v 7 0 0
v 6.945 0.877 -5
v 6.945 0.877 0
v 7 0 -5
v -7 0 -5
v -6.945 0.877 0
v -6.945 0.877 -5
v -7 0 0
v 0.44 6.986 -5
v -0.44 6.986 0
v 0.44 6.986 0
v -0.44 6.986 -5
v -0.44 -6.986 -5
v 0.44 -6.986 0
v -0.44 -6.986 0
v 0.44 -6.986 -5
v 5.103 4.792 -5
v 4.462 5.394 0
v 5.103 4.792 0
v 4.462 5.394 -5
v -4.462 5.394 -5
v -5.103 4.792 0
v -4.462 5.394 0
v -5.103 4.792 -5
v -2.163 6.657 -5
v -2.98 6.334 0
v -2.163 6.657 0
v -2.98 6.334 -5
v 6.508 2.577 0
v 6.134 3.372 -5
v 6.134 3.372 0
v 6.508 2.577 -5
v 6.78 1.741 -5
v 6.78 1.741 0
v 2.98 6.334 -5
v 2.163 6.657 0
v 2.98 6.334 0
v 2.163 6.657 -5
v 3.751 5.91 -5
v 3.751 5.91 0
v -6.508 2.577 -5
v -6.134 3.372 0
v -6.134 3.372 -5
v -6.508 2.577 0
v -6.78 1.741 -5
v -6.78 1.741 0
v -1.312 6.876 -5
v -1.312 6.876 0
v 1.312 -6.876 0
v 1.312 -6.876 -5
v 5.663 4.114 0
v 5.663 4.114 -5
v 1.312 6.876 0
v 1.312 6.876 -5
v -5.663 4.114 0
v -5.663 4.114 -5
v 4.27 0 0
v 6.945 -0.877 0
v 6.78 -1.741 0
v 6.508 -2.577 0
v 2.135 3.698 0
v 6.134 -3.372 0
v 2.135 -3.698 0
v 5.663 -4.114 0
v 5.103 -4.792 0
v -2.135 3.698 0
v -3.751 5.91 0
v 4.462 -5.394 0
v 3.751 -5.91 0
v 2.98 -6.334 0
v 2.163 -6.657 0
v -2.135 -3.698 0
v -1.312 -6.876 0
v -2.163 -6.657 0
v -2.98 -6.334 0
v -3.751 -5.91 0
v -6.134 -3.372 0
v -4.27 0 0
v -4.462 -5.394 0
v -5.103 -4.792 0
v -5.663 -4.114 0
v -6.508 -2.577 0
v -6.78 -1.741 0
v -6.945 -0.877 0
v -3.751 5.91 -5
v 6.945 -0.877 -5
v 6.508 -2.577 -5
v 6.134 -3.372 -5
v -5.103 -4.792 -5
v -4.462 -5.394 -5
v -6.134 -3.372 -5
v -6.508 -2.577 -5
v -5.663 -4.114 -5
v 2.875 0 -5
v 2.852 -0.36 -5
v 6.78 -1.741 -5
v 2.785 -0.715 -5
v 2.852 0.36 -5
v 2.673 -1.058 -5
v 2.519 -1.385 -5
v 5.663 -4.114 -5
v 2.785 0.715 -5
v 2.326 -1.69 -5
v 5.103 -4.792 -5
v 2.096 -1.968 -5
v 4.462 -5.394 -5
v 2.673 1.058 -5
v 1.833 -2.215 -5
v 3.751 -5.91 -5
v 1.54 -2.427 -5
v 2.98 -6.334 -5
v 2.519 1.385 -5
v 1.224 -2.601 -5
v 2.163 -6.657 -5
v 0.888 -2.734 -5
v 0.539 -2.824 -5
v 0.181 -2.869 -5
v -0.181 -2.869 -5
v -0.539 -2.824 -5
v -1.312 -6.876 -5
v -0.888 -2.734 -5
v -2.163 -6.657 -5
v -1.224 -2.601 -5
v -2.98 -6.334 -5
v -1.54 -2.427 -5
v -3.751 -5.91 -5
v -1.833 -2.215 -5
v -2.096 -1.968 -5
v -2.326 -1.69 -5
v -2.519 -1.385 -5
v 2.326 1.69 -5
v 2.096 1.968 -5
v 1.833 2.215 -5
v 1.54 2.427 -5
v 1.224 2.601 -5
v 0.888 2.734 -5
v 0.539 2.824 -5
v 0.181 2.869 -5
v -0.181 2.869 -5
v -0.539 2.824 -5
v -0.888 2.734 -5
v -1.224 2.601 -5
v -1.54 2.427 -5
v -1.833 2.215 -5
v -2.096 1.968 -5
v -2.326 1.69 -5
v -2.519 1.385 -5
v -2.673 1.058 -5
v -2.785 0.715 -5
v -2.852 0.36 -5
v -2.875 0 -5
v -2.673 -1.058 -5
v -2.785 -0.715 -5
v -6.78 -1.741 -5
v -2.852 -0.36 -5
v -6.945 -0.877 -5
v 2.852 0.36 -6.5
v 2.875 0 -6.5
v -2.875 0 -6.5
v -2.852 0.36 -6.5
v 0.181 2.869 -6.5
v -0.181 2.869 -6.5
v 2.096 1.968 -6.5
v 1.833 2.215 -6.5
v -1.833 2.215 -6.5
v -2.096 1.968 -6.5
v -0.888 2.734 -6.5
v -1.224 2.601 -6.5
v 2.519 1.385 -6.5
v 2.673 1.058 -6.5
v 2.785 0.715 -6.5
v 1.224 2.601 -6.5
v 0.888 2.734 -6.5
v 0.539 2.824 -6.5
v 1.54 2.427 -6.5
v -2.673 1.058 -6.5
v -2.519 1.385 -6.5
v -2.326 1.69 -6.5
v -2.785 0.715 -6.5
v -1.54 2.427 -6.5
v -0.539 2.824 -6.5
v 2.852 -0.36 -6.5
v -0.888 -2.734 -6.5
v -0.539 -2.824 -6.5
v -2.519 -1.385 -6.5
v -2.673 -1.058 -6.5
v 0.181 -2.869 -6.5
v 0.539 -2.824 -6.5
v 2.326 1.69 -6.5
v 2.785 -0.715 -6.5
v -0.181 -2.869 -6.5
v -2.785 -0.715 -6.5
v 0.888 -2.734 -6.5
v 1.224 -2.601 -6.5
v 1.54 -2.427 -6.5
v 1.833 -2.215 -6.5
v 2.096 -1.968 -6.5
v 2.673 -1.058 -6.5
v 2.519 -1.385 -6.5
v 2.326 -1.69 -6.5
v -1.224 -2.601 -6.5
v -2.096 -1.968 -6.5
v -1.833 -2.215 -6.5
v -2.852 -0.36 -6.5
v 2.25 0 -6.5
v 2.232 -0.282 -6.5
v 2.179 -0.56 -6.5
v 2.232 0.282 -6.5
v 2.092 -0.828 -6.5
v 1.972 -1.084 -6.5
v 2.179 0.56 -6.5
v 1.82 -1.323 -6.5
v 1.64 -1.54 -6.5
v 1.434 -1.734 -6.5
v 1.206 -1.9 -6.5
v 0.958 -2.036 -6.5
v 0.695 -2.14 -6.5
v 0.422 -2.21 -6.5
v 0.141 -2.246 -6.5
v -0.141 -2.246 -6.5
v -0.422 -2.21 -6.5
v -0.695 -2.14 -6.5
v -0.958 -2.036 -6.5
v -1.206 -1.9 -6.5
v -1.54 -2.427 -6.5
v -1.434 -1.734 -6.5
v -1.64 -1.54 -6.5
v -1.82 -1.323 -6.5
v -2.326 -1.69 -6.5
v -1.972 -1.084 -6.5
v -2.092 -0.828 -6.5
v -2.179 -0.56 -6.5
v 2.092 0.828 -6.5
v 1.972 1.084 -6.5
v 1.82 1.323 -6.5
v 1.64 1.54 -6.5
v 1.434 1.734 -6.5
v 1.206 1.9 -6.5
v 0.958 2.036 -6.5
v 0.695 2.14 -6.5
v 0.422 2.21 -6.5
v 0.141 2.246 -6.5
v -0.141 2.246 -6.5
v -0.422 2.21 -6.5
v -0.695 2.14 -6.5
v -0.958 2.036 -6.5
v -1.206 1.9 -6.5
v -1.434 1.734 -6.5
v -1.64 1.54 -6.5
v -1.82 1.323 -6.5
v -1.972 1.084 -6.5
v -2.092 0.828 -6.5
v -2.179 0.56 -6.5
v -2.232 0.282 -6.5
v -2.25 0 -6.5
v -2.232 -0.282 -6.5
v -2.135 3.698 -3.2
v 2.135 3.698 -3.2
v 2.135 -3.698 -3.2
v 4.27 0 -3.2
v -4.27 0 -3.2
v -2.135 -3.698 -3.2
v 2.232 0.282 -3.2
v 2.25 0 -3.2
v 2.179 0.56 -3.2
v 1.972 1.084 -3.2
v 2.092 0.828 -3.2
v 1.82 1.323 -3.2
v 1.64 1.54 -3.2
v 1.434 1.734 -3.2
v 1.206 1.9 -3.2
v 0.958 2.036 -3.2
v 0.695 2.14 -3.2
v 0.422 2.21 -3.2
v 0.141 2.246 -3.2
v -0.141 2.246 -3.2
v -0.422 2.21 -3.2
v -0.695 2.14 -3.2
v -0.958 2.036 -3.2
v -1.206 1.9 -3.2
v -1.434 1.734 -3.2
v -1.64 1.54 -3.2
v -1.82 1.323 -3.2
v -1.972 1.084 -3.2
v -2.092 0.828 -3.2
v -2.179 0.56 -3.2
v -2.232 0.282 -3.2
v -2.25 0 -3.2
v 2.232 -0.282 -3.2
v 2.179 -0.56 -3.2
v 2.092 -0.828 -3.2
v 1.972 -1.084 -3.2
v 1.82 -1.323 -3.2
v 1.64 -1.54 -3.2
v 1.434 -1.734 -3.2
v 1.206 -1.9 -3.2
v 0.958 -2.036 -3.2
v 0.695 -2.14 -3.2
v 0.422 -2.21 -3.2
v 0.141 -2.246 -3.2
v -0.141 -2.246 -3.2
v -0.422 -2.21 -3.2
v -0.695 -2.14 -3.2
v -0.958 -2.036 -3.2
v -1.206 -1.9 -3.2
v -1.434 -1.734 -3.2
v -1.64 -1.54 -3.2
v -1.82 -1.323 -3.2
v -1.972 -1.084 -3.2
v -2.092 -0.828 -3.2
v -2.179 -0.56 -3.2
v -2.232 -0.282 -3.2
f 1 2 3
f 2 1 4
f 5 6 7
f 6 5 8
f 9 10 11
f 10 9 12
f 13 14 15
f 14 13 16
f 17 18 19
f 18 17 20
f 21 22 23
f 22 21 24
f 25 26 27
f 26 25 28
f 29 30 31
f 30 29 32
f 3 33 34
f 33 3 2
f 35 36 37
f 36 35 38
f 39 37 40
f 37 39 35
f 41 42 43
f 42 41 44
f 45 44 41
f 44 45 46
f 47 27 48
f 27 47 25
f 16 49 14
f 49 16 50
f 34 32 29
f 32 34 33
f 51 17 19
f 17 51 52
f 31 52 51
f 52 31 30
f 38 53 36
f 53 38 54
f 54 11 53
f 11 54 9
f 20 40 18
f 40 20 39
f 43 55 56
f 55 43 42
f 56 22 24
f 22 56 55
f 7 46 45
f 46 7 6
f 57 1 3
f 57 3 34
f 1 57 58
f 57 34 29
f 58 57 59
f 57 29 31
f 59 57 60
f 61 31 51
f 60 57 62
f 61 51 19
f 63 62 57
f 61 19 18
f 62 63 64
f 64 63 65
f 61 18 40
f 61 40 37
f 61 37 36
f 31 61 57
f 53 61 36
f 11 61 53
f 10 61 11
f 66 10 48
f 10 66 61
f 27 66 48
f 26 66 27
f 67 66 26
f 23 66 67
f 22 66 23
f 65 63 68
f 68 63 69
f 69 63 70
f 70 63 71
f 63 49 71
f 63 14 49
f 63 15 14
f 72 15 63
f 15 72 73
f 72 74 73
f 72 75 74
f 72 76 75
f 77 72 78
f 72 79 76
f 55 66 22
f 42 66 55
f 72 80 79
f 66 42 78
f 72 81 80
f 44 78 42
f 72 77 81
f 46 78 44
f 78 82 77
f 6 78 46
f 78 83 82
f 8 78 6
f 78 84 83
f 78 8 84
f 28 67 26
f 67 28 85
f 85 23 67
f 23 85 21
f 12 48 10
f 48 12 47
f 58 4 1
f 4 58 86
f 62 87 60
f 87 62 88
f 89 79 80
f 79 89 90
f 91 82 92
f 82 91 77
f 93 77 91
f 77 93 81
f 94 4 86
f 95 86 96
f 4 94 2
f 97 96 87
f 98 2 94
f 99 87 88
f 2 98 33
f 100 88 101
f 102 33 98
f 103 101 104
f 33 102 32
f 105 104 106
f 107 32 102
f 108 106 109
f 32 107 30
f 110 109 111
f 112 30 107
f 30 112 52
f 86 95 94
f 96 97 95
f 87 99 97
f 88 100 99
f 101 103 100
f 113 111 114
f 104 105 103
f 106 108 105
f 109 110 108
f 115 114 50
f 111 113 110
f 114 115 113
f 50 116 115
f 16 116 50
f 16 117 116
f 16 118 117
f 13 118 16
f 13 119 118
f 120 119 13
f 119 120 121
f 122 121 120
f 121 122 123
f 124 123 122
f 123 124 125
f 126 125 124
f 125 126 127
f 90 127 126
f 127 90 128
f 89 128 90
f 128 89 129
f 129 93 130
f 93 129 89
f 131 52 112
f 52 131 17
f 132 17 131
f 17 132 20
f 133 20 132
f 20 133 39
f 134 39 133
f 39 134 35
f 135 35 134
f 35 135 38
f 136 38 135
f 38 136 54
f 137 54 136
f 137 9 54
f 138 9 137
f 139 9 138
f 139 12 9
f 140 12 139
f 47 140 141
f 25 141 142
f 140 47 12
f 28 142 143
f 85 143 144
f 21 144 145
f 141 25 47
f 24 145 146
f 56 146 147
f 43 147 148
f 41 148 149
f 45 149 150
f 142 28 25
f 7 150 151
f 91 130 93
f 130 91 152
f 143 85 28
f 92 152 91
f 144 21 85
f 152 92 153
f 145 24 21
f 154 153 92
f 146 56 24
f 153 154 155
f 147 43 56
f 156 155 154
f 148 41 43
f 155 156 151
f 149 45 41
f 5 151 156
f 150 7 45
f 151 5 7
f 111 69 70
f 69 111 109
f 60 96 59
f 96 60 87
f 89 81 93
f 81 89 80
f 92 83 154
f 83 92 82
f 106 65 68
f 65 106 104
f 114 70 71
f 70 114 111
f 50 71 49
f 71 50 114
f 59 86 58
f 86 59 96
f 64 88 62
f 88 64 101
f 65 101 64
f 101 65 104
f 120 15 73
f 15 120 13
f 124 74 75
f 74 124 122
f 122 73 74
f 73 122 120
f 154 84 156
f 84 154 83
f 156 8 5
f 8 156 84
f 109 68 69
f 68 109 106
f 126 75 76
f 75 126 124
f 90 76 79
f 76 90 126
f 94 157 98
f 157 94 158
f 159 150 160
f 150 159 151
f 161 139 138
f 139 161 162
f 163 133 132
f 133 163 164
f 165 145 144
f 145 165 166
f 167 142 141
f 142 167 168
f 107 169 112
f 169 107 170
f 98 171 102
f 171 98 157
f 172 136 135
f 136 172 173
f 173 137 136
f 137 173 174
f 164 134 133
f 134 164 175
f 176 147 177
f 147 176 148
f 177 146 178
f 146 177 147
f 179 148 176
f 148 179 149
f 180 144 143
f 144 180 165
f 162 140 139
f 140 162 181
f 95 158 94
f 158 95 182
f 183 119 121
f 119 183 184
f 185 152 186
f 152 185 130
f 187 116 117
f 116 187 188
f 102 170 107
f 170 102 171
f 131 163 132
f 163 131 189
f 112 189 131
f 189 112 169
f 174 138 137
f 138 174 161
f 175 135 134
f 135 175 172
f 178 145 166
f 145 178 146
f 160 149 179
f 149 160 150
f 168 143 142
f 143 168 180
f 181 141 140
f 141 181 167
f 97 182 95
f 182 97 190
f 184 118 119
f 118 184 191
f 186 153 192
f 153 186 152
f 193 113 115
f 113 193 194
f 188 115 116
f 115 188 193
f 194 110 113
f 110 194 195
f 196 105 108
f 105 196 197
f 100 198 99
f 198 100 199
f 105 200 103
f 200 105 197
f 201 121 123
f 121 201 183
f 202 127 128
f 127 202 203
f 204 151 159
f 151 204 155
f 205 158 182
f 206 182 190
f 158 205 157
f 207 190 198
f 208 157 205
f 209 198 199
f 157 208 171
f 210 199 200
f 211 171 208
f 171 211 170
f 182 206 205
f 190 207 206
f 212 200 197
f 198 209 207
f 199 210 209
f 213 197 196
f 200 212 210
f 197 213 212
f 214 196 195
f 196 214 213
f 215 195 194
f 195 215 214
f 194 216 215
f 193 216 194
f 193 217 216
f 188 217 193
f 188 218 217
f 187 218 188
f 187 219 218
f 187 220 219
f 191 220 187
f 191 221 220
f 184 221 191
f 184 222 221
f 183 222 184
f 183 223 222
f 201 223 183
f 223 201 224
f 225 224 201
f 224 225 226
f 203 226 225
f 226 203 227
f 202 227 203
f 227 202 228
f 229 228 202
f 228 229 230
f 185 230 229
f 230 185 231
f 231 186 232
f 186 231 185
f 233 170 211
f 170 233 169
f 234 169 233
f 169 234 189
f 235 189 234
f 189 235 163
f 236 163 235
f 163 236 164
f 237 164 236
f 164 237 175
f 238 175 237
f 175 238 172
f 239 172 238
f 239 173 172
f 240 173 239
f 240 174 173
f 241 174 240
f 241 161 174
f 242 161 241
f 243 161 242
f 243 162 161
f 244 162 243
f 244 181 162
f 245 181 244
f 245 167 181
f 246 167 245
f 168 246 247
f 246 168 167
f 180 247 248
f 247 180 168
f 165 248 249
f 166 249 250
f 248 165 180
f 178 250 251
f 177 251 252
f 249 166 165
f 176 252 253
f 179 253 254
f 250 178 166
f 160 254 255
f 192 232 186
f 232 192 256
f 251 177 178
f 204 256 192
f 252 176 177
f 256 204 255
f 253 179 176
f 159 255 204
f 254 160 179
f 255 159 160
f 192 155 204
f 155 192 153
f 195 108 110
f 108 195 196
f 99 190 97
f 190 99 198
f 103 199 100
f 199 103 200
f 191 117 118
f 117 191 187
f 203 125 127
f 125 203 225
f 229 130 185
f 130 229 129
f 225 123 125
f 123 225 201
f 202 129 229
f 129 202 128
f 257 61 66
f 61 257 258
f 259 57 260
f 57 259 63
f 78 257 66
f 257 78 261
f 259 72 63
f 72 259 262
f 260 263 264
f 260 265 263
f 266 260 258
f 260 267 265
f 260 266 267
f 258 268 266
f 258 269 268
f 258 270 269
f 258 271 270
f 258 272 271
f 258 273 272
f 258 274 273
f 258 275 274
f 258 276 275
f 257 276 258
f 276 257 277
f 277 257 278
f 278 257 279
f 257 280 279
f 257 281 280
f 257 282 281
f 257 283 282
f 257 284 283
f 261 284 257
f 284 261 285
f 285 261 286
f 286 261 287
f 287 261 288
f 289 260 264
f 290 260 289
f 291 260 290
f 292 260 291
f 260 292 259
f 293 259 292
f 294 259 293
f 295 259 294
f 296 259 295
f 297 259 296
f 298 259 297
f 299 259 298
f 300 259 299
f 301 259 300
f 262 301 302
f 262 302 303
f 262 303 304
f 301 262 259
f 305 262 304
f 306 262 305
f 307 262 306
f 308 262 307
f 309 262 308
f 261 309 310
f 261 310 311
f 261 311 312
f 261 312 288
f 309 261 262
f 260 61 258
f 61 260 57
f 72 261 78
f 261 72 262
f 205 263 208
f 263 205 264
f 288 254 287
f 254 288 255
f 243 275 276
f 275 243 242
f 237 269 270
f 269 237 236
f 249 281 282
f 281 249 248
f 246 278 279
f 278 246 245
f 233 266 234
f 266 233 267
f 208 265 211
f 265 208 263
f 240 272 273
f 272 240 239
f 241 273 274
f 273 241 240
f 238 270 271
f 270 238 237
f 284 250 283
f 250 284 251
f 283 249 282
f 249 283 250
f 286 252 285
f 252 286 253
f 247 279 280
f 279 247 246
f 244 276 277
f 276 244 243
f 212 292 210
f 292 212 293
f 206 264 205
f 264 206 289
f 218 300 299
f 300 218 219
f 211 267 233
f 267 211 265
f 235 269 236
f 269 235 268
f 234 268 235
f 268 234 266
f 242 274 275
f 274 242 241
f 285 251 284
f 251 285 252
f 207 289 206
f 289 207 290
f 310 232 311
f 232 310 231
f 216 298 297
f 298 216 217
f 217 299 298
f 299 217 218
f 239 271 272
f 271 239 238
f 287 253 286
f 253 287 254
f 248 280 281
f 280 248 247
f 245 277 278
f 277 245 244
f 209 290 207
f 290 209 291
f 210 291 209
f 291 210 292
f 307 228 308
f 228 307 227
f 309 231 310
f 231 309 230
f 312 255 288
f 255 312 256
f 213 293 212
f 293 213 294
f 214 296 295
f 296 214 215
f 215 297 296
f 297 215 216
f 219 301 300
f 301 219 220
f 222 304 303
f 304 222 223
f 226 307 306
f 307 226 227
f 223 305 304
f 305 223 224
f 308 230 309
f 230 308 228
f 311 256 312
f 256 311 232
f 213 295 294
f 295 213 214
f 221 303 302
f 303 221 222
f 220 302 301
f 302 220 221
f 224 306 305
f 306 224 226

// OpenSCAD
$fn = 50;


difference() {
	union() {
		translate(v = [0, 0, -5.0000000000]) {
			cylinder(h = 5.0000000000, r = 7.0000000000);
		}
		translate(v = [0, 0, -6.5000000000]) {
			cylinder(h = 6.5000000000, r = 2.8750000000);
		}
	}
	union() {
		translate(v = [0, 0, 0]) {
			rotate(a = [0, 0, 0]) {
				difference() {
					union() {
						translate(v = [0, 0, -3.2000000000]) {
							linear_extrude(height = 3.2000000000) {
								polygon(points = [[4.2698000000, 0.0000000000], [2.1349000000, 3.6977552691], [-2.1349000000, 3.6977552691], [-4.2698000000, 0.0000000000], [-2.1349000000, -3.6977552691], [2.1349000000, -3.6977552691]]);
							}
						}
					}
					union();
				}
			}
		}
		#translate(v = [0, 0, -100.0000000000]) {
			cylinder(h = 200, r = 2.2500000000);
		}
	}
}
